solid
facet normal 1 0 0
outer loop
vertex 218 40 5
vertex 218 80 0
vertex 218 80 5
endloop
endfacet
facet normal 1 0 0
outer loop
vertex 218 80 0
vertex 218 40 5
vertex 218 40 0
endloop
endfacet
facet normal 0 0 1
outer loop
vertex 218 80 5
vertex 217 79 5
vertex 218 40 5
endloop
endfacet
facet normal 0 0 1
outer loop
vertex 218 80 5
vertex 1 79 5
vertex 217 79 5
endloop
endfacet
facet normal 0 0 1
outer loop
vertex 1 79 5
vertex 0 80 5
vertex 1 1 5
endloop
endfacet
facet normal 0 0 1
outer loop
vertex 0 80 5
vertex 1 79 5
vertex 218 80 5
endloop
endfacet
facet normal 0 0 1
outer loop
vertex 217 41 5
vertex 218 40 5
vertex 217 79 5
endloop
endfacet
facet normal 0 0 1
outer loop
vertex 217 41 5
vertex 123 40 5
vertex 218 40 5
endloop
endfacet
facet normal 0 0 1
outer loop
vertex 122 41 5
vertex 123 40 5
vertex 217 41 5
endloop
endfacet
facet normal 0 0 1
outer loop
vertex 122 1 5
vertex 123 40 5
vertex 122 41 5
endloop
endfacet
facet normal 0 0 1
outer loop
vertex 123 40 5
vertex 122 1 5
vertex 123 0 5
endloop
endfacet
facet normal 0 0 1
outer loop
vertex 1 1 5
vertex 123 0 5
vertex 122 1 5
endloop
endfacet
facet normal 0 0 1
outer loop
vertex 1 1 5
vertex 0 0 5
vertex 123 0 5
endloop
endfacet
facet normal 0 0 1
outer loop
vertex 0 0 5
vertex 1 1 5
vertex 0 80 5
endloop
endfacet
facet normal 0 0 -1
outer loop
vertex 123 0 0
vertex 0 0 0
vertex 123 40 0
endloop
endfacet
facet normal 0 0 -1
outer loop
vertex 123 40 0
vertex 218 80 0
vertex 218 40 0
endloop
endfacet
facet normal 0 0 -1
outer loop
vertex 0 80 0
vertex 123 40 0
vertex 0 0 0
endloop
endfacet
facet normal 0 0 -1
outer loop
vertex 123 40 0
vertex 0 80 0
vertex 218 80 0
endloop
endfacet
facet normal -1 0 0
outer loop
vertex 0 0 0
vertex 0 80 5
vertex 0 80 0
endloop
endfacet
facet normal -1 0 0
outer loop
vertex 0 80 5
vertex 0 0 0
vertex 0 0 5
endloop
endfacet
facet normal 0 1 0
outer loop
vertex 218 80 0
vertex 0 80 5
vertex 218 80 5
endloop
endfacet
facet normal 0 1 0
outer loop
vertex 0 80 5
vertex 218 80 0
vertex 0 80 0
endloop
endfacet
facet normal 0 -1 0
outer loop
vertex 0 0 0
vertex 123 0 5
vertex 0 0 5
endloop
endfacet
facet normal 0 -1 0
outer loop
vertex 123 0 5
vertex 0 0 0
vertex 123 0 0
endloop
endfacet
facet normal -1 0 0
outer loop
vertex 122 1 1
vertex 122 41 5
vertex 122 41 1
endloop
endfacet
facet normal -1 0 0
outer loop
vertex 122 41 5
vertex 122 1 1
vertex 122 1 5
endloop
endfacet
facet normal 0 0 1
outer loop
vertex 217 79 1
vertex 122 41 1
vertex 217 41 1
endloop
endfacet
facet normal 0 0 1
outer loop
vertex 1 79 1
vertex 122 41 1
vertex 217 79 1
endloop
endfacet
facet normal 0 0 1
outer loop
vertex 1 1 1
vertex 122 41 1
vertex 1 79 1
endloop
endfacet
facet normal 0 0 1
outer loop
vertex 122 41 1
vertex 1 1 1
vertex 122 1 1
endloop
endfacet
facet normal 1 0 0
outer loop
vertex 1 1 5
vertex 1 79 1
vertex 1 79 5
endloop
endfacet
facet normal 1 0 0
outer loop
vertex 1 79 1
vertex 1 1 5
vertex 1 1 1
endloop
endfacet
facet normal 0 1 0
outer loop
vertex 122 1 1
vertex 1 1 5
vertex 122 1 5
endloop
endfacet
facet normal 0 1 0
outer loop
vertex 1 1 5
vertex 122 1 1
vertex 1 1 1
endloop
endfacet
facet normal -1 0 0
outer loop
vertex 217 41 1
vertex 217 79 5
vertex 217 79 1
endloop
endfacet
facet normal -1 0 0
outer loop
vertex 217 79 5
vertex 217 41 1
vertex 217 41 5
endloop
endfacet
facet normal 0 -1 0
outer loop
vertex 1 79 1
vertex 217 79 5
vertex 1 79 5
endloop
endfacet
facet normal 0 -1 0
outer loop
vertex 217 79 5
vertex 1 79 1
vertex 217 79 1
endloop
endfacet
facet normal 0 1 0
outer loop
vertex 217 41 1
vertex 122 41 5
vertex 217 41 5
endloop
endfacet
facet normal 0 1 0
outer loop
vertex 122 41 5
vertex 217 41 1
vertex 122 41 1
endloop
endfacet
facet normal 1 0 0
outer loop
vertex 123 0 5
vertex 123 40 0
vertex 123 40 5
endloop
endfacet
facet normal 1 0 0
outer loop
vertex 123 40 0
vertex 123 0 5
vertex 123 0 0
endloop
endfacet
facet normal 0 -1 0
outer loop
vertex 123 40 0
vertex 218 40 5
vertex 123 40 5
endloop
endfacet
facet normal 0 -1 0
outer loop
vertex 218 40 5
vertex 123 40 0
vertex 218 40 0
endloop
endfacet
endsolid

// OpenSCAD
include <boardgame_insert_toolkit_lib.2.scad>;

// determines whether lids are output.
g_b_print_lid = true;

// determines whether boxes are output.
g_b_print_box = true; 

// Focus on one box
g_isolated_print_box = ""; 

// Used to visualize how all of the boxes fit together. 
g_b_visualization = false;          
        
// this is the outer wall thickness. 
//Default = 1.5mm
g_wall_thickness = 1.0;

// The tolerance value is extra space put between planes of the lid and box that fit together.
// Increase the tolerance to loosen the fit and decrease it to tighten it.
//
// Note that the tolerance is applied exclusively to the lid.
// So if the lid is too tight or too loose, change this value ( up for looser fit, down for tighter fit ) and 
// you only need to reprint the lid.
// 
// The exception is the stackable box, where the bottom of the box is the lid of the box below,
// in which case the tolerance also affects that box bottom.
//
g_tolerance = 0.15;

// This adjusts the position of the lid detents downward. 
// The larger the value, the bigger the gap between the lid and the box.
g_tolerance_detents_pos = 0.1;

aw_size_x1 = 123.0;
aw_size_x2 = 95.0;
aw_size_x3 = 218.0;

aw_size_y1 = 40.0;
aw_size_y2 = 40.0;
aw_size_y3 = 80.0;

aw_size_z = 5.0; //30.0;

// hack to make the bottom cutout take away the whole portion of the 3rd compartment
g_full_bottom_cutout = true;

data =
  [
    [
      "simple box",
      [
        [ BOX_SIZE_XYZ, [aw_size_x3, aw_size_y3, aw_size_z] ],
        [ BOX_NO_LID_B, t],

        // Smaller side compartment
        [
          BOX_COMPONENT,
          [
            [
              CMP_COMPARTMENT_SIZE_XYZ,
              [
                aw_size_x1 - 2 * g_wall_thickness,
                aw_size_y1 + 1, // Force it to overflow into the next area
                aw_size_z - g_wall_thickness
              ]
            ],
            [ CMP_NUM_COMPARTMENTS_XY, [1, 1] ],
            [ POSITION_XY, [0, 0] ]
          ]
        ],

        // Larger side compartment
        [
          BOX_COMPONENT,
          [
            [
              CMP_COMPARTMENT_SIZE_XYZ,
              [
                aw_size_x3 - 2 * g_wall_thickness,
                aw_size_y2 - 2 * g_wall_thickness,
                aw_size_z - g_wall_thickness
              ]
            ],
            [ CMP_NUM_COMPARTMENTS_XY, [1, 1] ],
            [ POSITION_XY, [0, 40] ]
          ]
        ],

        // Cut-out compartment
        [
          BOX_COMPONENT,
          [
            [
              CMP_COMPARTMENT_SIZE_XYZ,
              [
                aw_size_x2 * 2,
                aw_size_y2 * 2,
                aw_size_z * 2
              ]
            ],
            //[ CMP_SHAPE_ROTATED_B, f ],
            [ CMP_NUM_COMPARTMENTS_XY, [1, 1] ],
            [ POSITION_XY, [122, -aw_size_y2 - 1] ],
            //[ CMP_PADDING_HEIGHT_ADJUST_XY, [-10, -10]],
            [ CMP_CUTOUT_BOTTOM_B, t ], 
            //[ CMP_CUTOUT_WIDTH_PCT, -10 ]
            [ CMP_CUTOUT_DEPTH_PCT, 10 ]
          ]
        ],
      ]
    ]
  ];

MakeAll();
